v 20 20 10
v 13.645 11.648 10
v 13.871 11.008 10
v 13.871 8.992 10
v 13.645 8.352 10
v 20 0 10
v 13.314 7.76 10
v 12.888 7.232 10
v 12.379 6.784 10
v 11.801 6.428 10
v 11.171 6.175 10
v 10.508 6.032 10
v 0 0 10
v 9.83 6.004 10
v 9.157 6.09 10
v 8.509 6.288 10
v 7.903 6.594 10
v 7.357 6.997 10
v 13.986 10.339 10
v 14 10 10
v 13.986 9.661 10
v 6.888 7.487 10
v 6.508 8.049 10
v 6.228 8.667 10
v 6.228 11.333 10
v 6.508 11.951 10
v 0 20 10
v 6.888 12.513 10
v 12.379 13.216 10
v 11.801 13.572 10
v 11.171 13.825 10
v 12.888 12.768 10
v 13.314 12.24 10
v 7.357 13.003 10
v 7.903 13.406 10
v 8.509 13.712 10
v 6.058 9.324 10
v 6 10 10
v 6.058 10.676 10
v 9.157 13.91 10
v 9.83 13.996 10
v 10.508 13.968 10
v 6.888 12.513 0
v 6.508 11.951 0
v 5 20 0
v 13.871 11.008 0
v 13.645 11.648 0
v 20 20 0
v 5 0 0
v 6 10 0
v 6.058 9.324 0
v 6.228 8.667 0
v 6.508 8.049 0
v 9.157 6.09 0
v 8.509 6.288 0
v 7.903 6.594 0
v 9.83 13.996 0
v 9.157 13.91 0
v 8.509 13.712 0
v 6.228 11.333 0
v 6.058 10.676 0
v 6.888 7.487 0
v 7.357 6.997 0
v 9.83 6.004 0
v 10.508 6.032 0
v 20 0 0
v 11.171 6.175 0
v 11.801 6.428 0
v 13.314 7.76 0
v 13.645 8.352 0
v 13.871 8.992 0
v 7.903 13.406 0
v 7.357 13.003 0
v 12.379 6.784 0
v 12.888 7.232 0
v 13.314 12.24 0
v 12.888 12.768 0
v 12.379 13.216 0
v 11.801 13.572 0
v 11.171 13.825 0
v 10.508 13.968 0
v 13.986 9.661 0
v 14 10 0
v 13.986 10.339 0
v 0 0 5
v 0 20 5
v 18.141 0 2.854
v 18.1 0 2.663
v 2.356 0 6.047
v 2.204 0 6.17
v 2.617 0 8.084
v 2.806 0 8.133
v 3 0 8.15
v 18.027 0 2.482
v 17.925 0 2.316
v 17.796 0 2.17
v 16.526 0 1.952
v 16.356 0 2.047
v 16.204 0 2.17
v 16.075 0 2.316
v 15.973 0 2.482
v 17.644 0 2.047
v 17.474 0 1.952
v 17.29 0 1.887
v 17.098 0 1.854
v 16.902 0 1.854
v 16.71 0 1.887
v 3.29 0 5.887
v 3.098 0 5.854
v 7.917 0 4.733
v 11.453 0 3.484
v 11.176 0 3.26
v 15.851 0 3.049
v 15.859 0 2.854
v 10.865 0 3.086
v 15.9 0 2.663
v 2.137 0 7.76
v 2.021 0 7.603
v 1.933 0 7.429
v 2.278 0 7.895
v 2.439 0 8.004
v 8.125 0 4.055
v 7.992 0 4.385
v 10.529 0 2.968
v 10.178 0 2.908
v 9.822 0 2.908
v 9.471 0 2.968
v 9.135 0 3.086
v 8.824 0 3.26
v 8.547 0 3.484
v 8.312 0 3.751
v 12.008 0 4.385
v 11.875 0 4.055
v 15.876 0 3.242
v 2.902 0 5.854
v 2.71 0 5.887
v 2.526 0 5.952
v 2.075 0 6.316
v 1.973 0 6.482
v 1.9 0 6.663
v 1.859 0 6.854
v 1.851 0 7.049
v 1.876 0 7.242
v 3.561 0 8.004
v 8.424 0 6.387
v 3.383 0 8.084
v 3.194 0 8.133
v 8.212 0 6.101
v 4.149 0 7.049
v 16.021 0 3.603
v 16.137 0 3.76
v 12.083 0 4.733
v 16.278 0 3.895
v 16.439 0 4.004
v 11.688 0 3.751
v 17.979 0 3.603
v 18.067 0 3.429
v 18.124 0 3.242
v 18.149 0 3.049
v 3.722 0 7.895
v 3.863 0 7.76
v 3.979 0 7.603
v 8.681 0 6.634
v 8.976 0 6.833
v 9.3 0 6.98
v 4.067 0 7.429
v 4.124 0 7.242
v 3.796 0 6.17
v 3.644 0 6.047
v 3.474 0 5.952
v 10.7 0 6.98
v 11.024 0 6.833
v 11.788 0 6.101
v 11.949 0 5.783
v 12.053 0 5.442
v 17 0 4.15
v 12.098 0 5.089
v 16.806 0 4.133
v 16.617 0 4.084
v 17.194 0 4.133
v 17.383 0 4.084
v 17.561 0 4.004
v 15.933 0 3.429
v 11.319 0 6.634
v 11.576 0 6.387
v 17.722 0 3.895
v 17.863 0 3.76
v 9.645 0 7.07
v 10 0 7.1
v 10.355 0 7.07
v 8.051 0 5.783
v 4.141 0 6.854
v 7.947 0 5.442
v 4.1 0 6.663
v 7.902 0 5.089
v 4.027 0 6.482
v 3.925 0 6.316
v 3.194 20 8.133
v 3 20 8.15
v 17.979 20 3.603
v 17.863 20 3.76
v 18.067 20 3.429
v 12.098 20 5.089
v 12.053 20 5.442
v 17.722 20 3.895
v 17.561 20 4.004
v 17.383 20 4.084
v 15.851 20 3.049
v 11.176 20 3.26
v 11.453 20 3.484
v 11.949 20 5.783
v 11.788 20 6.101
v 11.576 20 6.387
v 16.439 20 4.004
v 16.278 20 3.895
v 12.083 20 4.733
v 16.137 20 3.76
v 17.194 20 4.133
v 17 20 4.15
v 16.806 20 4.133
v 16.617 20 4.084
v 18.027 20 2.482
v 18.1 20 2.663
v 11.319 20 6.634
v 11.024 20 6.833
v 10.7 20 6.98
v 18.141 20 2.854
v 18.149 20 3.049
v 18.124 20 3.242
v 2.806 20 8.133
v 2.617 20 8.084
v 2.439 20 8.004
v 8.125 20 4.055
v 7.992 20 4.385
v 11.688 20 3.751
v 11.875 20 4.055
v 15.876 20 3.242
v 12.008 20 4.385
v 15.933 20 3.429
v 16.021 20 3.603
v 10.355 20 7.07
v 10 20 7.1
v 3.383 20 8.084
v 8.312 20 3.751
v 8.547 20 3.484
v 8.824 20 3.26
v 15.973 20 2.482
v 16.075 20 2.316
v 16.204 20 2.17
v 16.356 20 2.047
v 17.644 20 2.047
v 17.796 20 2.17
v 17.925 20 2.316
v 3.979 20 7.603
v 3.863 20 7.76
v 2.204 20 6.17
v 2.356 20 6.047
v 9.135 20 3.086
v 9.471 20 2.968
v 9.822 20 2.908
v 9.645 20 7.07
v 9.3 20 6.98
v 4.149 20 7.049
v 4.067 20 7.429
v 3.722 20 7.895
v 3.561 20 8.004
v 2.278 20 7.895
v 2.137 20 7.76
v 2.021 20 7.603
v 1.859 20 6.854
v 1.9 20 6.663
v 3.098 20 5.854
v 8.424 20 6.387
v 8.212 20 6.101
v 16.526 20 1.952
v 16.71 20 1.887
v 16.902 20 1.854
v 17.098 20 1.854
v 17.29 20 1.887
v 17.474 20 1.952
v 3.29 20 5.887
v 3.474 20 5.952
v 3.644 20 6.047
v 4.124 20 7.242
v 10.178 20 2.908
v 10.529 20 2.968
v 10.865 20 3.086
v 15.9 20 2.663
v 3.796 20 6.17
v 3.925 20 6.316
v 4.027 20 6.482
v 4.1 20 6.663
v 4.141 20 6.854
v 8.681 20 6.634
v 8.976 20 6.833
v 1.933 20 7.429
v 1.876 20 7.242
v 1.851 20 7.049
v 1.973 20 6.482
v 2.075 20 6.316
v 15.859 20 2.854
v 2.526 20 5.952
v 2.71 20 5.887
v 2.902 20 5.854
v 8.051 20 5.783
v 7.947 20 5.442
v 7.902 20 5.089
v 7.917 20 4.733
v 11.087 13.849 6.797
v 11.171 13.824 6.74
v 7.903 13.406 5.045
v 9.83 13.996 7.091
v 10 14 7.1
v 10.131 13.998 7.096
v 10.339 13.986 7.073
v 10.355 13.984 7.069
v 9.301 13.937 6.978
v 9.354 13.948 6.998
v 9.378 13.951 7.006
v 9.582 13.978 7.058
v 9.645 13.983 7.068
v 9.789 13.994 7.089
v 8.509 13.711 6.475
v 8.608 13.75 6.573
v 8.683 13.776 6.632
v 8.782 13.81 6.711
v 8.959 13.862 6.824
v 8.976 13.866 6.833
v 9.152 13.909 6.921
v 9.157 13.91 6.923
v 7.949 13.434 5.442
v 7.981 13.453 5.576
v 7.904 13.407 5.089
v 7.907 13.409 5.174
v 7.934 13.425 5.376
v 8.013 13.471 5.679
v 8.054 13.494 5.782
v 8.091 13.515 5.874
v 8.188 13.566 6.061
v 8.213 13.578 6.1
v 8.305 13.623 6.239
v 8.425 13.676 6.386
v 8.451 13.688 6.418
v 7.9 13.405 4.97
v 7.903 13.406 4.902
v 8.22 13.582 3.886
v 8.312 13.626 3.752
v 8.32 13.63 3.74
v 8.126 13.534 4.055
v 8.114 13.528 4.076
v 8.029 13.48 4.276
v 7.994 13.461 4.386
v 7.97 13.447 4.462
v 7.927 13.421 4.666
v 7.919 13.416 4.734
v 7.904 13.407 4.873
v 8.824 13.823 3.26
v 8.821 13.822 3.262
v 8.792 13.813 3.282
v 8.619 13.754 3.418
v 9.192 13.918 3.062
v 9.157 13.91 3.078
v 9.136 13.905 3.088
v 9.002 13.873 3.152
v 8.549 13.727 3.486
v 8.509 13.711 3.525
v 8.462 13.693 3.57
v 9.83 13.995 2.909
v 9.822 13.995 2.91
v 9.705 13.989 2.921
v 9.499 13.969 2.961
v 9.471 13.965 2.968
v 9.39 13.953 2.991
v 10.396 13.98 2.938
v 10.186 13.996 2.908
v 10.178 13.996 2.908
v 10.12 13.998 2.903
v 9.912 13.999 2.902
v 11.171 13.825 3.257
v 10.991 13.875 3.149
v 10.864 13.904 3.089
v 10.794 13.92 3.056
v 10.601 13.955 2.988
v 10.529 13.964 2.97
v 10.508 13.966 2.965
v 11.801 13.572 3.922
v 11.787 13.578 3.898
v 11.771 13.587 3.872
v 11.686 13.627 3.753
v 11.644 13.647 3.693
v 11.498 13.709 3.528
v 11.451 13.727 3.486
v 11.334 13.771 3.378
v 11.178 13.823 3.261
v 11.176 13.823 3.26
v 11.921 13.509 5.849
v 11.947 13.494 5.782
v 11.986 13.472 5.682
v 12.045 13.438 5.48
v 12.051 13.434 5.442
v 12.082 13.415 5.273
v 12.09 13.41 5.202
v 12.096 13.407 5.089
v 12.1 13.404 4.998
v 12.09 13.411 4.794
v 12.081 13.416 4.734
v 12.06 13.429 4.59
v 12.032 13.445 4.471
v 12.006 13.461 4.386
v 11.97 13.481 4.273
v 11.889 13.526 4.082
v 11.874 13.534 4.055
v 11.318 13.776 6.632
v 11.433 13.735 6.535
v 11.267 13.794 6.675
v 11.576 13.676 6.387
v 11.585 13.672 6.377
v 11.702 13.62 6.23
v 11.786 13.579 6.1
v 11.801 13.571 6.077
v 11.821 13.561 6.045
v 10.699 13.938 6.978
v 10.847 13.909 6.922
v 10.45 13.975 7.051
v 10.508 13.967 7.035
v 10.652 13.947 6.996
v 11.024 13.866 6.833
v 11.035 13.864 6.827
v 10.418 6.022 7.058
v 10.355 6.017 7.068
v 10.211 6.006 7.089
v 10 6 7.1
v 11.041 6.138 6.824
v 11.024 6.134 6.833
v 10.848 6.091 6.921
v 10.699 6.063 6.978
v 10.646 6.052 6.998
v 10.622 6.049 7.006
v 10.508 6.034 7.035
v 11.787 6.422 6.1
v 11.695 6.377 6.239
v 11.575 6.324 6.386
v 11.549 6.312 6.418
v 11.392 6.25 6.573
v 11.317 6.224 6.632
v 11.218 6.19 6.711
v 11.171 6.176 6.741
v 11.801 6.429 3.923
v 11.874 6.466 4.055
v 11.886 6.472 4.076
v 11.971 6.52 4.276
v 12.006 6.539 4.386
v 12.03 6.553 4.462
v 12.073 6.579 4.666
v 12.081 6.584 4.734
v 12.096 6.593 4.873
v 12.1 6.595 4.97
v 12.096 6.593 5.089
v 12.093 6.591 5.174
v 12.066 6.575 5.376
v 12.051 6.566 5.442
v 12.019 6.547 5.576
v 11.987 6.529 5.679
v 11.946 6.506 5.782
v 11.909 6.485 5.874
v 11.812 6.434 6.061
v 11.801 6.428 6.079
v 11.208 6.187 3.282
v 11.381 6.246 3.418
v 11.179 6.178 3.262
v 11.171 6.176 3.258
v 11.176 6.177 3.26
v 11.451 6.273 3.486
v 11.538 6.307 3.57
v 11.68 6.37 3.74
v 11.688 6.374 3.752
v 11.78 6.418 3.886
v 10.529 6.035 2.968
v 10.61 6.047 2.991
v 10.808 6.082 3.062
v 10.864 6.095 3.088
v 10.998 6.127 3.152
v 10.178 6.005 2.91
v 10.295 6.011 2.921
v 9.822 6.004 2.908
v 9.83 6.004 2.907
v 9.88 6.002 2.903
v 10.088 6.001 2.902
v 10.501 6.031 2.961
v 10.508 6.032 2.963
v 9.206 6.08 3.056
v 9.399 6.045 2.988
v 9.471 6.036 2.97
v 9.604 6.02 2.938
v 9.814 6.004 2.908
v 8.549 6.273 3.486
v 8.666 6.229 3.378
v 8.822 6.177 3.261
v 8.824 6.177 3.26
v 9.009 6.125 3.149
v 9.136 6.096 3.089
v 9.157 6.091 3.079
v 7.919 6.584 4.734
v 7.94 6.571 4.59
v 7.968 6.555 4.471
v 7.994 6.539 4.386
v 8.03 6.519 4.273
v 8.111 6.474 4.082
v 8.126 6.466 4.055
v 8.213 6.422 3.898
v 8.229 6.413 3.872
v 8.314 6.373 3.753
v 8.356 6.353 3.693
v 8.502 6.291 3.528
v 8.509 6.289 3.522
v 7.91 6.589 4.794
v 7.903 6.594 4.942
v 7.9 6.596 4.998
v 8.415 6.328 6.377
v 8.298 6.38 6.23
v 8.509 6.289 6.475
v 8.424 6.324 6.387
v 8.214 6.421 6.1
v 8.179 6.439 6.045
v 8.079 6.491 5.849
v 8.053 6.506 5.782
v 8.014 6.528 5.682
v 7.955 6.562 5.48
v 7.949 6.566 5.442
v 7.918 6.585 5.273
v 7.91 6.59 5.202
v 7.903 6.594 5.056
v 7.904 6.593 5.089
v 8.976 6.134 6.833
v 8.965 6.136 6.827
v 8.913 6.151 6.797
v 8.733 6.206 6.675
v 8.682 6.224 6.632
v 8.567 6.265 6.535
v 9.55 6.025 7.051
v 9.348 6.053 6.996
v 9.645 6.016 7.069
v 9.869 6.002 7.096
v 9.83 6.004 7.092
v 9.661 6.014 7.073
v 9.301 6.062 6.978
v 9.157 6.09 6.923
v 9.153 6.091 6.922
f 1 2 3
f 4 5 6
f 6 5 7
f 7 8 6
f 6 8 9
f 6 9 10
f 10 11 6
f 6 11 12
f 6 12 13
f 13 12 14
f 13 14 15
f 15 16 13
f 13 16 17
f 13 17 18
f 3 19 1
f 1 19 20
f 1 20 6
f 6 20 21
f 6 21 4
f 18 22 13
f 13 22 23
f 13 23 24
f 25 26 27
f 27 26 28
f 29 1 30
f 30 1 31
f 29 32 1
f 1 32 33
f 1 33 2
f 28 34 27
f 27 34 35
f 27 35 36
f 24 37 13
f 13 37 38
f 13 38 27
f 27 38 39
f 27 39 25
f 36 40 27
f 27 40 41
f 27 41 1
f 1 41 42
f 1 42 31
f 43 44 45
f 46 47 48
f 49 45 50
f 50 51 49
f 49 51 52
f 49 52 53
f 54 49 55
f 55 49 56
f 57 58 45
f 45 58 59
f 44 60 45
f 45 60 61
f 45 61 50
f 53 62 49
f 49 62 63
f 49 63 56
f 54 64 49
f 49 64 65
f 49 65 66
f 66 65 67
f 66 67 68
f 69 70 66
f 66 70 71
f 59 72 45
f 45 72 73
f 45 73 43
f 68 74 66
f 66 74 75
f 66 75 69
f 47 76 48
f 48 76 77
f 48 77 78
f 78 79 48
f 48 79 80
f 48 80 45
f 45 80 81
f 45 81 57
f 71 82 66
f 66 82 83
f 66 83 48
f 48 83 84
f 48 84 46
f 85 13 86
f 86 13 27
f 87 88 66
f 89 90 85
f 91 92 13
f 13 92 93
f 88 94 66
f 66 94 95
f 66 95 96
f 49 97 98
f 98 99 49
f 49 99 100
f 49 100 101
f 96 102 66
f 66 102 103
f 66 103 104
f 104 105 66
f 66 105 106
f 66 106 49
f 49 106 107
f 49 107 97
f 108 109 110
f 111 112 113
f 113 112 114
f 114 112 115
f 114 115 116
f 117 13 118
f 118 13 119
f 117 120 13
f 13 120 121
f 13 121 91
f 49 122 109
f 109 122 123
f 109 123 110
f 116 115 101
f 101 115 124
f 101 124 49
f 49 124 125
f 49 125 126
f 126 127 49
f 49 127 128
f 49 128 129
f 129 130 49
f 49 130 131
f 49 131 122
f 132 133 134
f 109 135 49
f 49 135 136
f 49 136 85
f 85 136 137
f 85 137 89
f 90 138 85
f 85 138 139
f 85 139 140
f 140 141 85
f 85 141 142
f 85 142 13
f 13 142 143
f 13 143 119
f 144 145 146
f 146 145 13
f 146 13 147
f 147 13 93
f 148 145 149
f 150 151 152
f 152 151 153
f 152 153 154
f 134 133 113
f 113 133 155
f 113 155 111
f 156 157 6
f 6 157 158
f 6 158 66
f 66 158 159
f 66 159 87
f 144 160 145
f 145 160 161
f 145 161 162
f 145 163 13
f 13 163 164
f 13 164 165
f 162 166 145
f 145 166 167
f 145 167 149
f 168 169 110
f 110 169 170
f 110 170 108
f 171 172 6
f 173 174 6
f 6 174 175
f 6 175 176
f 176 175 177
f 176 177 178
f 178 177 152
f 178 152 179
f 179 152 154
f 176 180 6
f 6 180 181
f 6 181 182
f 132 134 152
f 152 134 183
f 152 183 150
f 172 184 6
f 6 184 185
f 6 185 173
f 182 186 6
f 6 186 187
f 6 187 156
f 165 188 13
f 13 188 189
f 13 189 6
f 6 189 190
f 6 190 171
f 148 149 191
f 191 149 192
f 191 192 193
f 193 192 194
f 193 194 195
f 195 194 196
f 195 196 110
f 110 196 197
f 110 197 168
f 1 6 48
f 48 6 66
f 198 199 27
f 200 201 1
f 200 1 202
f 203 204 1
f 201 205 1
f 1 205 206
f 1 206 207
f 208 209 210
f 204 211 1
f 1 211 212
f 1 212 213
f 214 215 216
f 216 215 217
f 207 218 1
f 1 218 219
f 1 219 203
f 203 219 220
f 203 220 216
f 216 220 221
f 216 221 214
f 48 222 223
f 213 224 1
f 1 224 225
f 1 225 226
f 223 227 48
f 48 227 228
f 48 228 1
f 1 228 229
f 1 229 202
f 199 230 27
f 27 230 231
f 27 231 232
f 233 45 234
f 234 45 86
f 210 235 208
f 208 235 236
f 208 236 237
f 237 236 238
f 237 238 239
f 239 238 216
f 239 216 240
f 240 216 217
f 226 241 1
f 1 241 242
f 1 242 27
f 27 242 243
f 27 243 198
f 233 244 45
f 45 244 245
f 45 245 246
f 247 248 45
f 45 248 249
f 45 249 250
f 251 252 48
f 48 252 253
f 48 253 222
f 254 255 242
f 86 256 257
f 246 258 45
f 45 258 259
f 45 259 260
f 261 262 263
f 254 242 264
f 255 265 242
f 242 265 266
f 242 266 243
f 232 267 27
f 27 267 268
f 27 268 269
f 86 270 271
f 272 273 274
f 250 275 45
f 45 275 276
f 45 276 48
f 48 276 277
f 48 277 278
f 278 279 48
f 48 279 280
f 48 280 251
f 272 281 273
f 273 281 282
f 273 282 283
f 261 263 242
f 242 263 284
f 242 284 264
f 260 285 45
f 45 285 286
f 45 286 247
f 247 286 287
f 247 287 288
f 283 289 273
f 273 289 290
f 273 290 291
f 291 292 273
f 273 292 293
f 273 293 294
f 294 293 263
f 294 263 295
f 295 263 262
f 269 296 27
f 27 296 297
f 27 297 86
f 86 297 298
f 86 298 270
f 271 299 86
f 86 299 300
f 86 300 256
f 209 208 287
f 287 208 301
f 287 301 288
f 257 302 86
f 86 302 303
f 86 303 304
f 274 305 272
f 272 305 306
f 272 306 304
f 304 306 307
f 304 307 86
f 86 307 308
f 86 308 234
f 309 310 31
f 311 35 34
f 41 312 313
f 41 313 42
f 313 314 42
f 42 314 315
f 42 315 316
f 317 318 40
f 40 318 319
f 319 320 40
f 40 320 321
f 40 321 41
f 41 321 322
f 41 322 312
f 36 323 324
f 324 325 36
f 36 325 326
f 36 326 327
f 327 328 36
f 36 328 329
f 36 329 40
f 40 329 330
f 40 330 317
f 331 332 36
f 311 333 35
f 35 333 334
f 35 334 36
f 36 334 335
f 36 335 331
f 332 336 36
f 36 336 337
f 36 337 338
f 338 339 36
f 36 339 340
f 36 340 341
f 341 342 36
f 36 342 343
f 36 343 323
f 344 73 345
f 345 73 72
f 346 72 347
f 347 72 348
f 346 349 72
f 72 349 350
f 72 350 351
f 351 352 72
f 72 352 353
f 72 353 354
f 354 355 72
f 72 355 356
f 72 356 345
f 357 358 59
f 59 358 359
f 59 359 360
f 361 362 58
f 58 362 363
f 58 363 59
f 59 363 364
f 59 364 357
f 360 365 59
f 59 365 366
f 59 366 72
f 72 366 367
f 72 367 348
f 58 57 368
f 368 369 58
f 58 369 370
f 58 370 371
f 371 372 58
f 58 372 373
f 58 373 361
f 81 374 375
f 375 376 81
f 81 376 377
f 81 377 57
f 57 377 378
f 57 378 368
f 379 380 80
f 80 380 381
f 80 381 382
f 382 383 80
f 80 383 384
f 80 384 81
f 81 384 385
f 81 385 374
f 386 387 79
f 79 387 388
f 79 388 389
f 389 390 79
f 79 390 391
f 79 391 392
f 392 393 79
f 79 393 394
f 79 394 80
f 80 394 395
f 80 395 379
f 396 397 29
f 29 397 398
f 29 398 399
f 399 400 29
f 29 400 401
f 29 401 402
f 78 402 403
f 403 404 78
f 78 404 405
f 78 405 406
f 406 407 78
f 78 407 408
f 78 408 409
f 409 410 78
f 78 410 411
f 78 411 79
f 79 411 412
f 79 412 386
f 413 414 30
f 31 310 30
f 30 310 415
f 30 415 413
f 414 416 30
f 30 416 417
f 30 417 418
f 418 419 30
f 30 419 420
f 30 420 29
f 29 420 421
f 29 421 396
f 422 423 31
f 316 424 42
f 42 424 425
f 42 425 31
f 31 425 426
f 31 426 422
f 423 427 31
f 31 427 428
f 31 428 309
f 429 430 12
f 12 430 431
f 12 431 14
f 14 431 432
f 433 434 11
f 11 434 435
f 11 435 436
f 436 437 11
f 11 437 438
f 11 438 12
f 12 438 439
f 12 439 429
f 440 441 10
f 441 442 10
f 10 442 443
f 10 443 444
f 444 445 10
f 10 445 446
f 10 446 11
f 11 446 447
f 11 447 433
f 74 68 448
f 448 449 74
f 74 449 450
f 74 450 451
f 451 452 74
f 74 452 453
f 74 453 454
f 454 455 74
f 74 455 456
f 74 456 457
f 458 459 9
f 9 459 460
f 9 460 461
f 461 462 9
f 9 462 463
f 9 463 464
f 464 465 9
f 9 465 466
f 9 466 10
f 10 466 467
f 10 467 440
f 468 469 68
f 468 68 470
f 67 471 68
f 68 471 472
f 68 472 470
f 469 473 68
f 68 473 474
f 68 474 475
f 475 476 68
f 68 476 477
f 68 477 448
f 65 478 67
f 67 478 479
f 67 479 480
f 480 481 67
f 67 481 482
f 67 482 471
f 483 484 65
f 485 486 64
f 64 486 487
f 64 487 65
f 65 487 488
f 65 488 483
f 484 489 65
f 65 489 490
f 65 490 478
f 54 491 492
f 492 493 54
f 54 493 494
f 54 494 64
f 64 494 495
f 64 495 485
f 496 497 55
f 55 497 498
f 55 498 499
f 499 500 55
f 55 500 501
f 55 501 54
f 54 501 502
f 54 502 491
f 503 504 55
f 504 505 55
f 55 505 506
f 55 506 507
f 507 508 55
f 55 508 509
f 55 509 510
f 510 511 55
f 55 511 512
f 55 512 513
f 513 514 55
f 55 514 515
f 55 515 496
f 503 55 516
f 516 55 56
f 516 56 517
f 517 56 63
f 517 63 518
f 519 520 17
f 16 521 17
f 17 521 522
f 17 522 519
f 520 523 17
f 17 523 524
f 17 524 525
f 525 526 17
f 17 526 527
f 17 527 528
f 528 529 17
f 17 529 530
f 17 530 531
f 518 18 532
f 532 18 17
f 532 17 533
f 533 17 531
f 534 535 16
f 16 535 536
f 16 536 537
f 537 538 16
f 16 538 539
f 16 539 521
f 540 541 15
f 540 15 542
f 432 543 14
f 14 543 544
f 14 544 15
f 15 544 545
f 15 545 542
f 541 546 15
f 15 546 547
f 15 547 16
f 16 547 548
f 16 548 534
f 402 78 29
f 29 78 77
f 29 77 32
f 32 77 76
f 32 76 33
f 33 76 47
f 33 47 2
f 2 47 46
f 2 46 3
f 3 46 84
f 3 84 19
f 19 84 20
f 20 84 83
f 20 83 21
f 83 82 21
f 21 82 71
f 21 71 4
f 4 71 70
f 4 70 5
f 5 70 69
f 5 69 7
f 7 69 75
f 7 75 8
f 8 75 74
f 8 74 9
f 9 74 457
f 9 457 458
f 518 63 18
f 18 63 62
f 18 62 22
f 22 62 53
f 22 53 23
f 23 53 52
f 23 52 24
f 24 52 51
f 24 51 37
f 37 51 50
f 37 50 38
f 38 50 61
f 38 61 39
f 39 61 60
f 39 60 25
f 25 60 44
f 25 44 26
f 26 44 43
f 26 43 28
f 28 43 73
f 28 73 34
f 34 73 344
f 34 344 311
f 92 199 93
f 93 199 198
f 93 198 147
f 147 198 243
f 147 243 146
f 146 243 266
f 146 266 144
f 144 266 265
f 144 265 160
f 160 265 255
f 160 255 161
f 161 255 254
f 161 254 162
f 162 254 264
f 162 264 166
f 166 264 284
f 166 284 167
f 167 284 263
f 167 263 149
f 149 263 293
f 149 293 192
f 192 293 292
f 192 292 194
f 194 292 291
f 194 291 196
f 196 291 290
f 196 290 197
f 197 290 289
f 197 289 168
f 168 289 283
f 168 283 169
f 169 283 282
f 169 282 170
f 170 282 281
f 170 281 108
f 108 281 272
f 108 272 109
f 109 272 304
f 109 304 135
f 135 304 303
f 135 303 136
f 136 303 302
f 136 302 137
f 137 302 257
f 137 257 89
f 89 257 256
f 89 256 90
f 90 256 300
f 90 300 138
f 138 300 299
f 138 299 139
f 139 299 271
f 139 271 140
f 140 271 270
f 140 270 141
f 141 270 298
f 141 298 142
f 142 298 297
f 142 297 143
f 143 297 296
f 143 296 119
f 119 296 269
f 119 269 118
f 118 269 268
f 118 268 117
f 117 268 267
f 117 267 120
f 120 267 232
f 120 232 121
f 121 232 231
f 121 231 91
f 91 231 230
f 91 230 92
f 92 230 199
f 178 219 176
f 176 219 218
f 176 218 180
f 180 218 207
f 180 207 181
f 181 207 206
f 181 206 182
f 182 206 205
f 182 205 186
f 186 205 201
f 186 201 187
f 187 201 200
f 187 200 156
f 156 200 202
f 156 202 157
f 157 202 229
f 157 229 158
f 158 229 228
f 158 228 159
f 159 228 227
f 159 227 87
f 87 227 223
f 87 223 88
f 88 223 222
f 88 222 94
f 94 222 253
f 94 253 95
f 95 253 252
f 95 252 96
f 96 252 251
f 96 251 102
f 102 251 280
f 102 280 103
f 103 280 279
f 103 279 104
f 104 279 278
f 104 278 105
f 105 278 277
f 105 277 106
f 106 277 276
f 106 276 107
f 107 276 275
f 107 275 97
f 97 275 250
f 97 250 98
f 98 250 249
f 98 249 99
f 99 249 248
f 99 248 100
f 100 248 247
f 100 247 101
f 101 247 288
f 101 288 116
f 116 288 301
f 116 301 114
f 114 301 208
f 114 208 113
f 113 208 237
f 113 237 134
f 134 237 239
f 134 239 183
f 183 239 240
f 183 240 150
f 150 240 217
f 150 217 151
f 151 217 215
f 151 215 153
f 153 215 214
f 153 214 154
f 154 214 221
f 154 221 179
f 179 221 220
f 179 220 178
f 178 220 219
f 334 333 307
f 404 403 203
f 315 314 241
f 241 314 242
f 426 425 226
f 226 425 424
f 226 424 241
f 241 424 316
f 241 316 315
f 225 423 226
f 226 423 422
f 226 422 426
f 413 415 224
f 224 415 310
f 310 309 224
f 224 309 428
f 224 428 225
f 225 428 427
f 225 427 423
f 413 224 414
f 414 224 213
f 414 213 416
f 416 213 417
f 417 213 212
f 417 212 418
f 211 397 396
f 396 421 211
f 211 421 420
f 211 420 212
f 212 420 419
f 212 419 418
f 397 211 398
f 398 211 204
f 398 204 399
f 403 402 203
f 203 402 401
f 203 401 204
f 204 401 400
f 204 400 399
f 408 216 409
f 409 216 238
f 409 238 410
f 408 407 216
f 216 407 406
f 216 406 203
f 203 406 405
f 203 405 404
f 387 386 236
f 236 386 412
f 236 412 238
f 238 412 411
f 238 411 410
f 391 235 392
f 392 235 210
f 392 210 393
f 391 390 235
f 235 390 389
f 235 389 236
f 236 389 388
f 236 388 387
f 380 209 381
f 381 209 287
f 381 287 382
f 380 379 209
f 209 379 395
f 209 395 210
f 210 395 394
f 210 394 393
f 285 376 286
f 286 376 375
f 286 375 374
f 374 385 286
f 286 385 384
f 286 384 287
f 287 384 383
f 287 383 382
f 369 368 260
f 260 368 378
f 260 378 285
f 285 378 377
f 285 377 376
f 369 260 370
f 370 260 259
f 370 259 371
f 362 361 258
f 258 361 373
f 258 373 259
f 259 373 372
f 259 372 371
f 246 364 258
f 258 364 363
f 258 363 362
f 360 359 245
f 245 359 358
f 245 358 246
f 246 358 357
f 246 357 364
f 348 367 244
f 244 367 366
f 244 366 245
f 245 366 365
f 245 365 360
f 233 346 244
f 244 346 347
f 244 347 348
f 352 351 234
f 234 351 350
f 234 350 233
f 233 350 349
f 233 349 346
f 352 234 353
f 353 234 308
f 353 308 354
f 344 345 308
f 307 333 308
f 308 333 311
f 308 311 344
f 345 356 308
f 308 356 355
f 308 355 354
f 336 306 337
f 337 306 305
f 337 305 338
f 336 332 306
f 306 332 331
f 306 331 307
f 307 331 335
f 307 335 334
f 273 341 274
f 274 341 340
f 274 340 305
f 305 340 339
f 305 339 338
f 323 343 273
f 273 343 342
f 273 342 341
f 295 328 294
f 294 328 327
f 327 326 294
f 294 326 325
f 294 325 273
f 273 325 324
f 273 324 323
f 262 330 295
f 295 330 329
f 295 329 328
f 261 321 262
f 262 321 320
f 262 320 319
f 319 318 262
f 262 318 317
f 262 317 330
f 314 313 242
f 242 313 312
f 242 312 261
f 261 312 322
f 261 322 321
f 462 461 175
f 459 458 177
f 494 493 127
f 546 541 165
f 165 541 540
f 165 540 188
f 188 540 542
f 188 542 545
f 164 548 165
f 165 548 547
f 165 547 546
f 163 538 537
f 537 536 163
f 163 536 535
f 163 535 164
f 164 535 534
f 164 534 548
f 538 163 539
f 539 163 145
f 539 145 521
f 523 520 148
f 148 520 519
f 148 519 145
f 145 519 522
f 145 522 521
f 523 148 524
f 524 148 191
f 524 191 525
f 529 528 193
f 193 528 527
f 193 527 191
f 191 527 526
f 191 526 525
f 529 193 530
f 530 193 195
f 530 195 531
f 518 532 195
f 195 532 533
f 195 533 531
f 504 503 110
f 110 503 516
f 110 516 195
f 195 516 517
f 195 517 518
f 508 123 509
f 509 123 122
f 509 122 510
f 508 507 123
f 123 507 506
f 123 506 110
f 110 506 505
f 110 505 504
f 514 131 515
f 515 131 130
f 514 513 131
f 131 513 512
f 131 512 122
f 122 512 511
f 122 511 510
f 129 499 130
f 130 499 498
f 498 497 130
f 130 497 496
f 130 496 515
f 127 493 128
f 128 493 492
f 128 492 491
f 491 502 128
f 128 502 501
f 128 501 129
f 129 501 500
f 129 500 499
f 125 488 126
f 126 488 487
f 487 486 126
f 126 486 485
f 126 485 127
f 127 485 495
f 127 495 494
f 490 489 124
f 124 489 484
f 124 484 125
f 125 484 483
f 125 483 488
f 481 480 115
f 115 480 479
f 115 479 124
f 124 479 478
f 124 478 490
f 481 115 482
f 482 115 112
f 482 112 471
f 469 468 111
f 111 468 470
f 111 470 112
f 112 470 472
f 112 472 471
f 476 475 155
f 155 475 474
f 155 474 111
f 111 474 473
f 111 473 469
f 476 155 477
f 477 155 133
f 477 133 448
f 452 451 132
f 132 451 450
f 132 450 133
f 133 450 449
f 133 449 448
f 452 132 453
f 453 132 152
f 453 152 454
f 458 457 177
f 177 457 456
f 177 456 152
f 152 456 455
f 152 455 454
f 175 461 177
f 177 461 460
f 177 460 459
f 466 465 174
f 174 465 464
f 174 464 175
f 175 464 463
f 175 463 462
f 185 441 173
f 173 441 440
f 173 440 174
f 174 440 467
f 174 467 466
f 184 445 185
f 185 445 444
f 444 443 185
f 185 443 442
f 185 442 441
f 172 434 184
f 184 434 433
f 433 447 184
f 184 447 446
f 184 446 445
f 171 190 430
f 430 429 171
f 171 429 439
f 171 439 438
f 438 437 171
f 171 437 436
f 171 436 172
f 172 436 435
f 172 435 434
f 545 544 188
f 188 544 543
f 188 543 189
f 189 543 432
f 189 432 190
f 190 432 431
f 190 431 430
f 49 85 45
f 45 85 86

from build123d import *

# Parameters (mm, degrees)
SKETCH1_W           = 20
SKETCH1_H           = 20
SKETCH1_R           = 4
BOSS_EXTRUDE1_DEPTH = 10
SKETCH2_R           = 1.15
SKETCH2_R_2         = 2.1
CUT_EXTRUDE1_DEPTH  = 21
CHAMFER1_SIZE       = 5


with BuildPart() as part:
    # Sketch1 → Boss-Extrude1 (new body)
    with BuildSketch(Plane.XY):
        with Locations((10, 10)):
            Rectangle(SKETCH1_W, SKETCH1_H)
        with Locations((10, 10)):
            Circle(SKETCH1_R, mode=Mode.SUBTRACT)
    extrude(amount=BOSS_EXTRUDE1_DEPTH)

    # Sketch2 → Cut-Extrude1 (cut, through all)
    with BuildSketch(Plane(origin=(0, 20, 0), x_dir=(1, 0, 0), z_dir=(0, 1, 0))):
        with Locations((3, -7)):
            Circle(SKETCH2_R)
        with Locations((17, -3)):
            Circle(SKETCH2_R)
        with Locations((10, -5)):
            Circle(SKETCH2_R_2)
    extrude(amount=-CUT_EXTRUDE1_DEPTH, mode=Mode.SUBTRACT)

    # Chamfer1
    chamfer1_edges = [part.edges().sort_by_distance(p)[0] for p in [
        (0, 10, 0),
    ]]
    chamfer(chamfer1_edges, length=CHAMFER1_SIZE)


solid = part.part
